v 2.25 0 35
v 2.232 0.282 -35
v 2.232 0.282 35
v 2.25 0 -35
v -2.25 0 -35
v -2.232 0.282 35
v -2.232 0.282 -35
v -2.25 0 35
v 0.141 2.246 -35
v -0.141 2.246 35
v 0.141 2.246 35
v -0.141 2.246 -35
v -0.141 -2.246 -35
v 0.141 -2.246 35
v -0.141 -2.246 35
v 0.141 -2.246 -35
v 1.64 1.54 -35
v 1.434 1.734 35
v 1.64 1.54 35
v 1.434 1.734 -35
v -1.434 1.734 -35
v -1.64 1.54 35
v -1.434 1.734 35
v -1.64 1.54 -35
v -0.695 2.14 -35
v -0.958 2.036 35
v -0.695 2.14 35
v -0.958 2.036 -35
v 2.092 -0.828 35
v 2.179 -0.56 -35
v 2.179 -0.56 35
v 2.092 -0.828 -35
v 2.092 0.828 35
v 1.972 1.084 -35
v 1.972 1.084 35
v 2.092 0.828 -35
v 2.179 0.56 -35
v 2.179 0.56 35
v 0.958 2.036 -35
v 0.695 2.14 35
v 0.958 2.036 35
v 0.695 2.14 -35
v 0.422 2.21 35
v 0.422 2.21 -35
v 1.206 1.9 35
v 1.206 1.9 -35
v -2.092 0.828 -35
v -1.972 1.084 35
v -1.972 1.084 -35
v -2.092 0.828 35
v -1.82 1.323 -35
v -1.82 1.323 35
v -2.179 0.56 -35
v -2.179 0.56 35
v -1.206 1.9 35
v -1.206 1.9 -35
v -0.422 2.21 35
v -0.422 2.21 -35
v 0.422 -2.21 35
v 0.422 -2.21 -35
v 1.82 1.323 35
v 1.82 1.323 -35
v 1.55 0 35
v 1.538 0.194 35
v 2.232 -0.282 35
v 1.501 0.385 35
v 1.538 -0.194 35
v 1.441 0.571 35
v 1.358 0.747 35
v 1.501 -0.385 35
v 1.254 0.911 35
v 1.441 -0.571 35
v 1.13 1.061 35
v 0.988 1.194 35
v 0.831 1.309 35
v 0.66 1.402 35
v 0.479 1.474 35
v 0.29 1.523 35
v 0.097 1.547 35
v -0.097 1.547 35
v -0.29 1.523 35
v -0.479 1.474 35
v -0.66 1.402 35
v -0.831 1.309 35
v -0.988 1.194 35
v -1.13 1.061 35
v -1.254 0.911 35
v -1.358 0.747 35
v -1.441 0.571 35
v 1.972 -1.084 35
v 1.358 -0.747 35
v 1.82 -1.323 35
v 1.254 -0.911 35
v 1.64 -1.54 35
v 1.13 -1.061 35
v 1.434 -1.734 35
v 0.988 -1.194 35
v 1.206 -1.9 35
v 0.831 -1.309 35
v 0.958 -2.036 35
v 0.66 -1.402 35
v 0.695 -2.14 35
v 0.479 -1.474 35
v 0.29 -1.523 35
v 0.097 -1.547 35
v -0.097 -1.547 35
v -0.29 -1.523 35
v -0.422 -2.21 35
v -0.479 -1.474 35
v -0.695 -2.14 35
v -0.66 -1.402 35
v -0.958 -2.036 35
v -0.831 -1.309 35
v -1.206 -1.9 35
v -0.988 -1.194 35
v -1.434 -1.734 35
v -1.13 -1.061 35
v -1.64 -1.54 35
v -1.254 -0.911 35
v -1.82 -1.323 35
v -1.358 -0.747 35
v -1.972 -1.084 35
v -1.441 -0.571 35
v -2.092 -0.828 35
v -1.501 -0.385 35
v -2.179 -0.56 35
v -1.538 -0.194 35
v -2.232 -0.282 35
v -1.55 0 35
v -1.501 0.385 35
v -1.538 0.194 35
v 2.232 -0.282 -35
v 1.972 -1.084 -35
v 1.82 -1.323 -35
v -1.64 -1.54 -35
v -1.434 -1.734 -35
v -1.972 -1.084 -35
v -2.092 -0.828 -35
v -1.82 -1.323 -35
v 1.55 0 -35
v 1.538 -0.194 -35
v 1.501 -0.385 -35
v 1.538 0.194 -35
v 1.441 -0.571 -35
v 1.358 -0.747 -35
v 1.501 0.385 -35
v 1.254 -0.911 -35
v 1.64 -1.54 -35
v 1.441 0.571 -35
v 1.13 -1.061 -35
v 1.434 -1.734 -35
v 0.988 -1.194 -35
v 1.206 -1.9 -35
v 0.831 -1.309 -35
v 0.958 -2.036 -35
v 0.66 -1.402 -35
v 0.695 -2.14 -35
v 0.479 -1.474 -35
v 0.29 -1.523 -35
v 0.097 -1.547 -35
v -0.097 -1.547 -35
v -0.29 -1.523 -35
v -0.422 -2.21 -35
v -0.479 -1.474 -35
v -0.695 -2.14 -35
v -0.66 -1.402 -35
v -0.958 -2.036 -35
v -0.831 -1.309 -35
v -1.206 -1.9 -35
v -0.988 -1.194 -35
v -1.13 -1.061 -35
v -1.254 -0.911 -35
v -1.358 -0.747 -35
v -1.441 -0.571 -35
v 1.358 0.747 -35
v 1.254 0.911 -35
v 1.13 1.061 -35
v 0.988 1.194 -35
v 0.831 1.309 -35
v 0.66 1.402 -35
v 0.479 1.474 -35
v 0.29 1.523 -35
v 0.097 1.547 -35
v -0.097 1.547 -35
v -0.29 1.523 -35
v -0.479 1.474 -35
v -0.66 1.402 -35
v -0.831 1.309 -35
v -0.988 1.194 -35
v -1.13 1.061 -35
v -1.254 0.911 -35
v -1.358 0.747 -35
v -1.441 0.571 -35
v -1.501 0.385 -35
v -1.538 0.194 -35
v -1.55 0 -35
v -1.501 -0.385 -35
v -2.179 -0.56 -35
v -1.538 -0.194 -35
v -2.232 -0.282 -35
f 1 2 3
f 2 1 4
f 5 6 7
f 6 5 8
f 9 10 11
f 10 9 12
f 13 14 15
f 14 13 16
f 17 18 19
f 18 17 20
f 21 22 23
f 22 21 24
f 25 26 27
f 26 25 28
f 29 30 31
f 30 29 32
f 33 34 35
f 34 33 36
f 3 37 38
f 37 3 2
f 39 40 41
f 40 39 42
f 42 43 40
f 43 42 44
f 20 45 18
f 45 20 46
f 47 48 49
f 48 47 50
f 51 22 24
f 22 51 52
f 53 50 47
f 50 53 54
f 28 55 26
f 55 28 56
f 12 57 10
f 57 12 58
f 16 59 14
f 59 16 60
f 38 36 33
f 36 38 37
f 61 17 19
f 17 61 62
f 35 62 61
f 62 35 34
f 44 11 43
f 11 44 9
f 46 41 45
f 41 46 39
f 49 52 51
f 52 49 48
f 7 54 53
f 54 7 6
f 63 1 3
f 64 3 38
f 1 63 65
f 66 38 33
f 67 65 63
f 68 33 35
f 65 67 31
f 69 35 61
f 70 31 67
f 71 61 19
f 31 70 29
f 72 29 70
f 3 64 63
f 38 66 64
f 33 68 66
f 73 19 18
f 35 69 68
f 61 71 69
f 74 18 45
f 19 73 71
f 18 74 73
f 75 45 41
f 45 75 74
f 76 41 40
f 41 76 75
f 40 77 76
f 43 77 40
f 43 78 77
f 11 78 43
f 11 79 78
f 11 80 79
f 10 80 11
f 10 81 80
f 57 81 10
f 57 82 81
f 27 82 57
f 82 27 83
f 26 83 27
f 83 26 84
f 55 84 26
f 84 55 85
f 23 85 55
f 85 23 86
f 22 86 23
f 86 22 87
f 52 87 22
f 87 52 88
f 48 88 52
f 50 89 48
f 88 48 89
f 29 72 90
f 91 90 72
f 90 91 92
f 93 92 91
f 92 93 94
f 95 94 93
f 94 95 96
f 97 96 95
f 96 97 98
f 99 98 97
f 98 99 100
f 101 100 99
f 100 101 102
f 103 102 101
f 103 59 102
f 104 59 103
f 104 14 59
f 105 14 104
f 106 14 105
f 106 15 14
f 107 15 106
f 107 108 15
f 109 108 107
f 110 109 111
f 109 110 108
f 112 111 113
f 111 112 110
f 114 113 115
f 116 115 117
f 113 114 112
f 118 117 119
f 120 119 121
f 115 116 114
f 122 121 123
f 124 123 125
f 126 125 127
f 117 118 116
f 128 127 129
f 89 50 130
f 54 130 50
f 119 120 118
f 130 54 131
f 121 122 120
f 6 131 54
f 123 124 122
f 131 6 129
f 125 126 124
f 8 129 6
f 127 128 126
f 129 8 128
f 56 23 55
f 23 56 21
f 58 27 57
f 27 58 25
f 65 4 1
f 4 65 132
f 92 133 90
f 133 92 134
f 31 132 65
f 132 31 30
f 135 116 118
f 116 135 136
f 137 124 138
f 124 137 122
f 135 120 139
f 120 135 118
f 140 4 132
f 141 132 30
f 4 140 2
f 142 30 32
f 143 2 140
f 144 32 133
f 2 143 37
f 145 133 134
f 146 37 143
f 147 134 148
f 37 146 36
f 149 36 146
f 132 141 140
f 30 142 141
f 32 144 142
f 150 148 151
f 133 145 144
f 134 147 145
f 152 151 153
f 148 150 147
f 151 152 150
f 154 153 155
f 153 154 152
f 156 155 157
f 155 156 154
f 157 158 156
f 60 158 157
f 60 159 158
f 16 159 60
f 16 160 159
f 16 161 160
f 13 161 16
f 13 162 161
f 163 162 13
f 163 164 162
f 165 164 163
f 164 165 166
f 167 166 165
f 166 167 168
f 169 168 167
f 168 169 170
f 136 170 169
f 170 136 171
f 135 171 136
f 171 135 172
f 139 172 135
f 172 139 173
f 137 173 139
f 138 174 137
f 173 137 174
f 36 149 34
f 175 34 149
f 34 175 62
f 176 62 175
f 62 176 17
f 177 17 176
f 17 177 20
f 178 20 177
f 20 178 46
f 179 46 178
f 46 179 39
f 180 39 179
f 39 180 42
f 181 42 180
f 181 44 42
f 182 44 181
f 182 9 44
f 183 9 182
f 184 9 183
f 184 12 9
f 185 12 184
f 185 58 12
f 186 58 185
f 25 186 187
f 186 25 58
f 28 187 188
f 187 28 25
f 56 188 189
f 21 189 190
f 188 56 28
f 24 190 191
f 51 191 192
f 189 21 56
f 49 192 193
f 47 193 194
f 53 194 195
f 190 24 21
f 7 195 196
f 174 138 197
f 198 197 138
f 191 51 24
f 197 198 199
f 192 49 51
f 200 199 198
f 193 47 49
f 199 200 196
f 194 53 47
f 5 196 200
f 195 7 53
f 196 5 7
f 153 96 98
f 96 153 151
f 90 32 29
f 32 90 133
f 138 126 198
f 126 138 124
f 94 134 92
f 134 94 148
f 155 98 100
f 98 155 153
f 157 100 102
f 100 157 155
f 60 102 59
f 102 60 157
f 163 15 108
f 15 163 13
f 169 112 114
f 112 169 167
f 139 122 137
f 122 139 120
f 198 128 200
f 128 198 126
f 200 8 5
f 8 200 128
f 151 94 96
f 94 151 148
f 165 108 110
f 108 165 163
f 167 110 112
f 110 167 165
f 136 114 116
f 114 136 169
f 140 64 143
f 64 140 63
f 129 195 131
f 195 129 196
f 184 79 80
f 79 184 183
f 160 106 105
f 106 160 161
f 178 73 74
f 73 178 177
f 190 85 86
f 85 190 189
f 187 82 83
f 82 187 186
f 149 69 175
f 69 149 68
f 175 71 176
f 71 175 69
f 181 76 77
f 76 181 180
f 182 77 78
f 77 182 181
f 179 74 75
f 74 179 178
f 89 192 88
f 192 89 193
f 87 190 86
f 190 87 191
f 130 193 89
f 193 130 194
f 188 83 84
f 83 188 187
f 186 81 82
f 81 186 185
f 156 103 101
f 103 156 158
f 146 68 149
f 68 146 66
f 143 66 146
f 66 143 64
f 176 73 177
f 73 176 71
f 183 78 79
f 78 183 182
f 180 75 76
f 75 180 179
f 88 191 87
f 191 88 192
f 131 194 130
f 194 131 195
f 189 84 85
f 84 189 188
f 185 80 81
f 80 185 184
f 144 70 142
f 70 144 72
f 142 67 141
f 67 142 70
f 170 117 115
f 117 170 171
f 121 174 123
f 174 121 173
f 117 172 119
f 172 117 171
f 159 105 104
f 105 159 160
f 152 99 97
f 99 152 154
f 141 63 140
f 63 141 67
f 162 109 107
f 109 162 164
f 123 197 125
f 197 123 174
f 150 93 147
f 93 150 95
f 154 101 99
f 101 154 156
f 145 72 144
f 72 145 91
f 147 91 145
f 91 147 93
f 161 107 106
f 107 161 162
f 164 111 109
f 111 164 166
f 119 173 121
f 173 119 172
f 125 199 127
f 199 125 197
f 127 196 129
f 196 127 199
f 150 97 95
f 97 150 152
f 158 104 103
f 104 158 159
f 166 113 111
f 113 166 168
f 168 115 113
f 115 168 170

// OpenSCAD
$fn = 50;


difference() {
	union() {
		translate(v = [0, 0, -35.0000000000]) {
			cylinder(h = 70, r = 2.2500000000);
		}
	}
	union() {
		translate(v = [0, 0, -100.0000000000]) {
			cylinder(h = 200, r = 1.5500000000);
		}
	}
}
